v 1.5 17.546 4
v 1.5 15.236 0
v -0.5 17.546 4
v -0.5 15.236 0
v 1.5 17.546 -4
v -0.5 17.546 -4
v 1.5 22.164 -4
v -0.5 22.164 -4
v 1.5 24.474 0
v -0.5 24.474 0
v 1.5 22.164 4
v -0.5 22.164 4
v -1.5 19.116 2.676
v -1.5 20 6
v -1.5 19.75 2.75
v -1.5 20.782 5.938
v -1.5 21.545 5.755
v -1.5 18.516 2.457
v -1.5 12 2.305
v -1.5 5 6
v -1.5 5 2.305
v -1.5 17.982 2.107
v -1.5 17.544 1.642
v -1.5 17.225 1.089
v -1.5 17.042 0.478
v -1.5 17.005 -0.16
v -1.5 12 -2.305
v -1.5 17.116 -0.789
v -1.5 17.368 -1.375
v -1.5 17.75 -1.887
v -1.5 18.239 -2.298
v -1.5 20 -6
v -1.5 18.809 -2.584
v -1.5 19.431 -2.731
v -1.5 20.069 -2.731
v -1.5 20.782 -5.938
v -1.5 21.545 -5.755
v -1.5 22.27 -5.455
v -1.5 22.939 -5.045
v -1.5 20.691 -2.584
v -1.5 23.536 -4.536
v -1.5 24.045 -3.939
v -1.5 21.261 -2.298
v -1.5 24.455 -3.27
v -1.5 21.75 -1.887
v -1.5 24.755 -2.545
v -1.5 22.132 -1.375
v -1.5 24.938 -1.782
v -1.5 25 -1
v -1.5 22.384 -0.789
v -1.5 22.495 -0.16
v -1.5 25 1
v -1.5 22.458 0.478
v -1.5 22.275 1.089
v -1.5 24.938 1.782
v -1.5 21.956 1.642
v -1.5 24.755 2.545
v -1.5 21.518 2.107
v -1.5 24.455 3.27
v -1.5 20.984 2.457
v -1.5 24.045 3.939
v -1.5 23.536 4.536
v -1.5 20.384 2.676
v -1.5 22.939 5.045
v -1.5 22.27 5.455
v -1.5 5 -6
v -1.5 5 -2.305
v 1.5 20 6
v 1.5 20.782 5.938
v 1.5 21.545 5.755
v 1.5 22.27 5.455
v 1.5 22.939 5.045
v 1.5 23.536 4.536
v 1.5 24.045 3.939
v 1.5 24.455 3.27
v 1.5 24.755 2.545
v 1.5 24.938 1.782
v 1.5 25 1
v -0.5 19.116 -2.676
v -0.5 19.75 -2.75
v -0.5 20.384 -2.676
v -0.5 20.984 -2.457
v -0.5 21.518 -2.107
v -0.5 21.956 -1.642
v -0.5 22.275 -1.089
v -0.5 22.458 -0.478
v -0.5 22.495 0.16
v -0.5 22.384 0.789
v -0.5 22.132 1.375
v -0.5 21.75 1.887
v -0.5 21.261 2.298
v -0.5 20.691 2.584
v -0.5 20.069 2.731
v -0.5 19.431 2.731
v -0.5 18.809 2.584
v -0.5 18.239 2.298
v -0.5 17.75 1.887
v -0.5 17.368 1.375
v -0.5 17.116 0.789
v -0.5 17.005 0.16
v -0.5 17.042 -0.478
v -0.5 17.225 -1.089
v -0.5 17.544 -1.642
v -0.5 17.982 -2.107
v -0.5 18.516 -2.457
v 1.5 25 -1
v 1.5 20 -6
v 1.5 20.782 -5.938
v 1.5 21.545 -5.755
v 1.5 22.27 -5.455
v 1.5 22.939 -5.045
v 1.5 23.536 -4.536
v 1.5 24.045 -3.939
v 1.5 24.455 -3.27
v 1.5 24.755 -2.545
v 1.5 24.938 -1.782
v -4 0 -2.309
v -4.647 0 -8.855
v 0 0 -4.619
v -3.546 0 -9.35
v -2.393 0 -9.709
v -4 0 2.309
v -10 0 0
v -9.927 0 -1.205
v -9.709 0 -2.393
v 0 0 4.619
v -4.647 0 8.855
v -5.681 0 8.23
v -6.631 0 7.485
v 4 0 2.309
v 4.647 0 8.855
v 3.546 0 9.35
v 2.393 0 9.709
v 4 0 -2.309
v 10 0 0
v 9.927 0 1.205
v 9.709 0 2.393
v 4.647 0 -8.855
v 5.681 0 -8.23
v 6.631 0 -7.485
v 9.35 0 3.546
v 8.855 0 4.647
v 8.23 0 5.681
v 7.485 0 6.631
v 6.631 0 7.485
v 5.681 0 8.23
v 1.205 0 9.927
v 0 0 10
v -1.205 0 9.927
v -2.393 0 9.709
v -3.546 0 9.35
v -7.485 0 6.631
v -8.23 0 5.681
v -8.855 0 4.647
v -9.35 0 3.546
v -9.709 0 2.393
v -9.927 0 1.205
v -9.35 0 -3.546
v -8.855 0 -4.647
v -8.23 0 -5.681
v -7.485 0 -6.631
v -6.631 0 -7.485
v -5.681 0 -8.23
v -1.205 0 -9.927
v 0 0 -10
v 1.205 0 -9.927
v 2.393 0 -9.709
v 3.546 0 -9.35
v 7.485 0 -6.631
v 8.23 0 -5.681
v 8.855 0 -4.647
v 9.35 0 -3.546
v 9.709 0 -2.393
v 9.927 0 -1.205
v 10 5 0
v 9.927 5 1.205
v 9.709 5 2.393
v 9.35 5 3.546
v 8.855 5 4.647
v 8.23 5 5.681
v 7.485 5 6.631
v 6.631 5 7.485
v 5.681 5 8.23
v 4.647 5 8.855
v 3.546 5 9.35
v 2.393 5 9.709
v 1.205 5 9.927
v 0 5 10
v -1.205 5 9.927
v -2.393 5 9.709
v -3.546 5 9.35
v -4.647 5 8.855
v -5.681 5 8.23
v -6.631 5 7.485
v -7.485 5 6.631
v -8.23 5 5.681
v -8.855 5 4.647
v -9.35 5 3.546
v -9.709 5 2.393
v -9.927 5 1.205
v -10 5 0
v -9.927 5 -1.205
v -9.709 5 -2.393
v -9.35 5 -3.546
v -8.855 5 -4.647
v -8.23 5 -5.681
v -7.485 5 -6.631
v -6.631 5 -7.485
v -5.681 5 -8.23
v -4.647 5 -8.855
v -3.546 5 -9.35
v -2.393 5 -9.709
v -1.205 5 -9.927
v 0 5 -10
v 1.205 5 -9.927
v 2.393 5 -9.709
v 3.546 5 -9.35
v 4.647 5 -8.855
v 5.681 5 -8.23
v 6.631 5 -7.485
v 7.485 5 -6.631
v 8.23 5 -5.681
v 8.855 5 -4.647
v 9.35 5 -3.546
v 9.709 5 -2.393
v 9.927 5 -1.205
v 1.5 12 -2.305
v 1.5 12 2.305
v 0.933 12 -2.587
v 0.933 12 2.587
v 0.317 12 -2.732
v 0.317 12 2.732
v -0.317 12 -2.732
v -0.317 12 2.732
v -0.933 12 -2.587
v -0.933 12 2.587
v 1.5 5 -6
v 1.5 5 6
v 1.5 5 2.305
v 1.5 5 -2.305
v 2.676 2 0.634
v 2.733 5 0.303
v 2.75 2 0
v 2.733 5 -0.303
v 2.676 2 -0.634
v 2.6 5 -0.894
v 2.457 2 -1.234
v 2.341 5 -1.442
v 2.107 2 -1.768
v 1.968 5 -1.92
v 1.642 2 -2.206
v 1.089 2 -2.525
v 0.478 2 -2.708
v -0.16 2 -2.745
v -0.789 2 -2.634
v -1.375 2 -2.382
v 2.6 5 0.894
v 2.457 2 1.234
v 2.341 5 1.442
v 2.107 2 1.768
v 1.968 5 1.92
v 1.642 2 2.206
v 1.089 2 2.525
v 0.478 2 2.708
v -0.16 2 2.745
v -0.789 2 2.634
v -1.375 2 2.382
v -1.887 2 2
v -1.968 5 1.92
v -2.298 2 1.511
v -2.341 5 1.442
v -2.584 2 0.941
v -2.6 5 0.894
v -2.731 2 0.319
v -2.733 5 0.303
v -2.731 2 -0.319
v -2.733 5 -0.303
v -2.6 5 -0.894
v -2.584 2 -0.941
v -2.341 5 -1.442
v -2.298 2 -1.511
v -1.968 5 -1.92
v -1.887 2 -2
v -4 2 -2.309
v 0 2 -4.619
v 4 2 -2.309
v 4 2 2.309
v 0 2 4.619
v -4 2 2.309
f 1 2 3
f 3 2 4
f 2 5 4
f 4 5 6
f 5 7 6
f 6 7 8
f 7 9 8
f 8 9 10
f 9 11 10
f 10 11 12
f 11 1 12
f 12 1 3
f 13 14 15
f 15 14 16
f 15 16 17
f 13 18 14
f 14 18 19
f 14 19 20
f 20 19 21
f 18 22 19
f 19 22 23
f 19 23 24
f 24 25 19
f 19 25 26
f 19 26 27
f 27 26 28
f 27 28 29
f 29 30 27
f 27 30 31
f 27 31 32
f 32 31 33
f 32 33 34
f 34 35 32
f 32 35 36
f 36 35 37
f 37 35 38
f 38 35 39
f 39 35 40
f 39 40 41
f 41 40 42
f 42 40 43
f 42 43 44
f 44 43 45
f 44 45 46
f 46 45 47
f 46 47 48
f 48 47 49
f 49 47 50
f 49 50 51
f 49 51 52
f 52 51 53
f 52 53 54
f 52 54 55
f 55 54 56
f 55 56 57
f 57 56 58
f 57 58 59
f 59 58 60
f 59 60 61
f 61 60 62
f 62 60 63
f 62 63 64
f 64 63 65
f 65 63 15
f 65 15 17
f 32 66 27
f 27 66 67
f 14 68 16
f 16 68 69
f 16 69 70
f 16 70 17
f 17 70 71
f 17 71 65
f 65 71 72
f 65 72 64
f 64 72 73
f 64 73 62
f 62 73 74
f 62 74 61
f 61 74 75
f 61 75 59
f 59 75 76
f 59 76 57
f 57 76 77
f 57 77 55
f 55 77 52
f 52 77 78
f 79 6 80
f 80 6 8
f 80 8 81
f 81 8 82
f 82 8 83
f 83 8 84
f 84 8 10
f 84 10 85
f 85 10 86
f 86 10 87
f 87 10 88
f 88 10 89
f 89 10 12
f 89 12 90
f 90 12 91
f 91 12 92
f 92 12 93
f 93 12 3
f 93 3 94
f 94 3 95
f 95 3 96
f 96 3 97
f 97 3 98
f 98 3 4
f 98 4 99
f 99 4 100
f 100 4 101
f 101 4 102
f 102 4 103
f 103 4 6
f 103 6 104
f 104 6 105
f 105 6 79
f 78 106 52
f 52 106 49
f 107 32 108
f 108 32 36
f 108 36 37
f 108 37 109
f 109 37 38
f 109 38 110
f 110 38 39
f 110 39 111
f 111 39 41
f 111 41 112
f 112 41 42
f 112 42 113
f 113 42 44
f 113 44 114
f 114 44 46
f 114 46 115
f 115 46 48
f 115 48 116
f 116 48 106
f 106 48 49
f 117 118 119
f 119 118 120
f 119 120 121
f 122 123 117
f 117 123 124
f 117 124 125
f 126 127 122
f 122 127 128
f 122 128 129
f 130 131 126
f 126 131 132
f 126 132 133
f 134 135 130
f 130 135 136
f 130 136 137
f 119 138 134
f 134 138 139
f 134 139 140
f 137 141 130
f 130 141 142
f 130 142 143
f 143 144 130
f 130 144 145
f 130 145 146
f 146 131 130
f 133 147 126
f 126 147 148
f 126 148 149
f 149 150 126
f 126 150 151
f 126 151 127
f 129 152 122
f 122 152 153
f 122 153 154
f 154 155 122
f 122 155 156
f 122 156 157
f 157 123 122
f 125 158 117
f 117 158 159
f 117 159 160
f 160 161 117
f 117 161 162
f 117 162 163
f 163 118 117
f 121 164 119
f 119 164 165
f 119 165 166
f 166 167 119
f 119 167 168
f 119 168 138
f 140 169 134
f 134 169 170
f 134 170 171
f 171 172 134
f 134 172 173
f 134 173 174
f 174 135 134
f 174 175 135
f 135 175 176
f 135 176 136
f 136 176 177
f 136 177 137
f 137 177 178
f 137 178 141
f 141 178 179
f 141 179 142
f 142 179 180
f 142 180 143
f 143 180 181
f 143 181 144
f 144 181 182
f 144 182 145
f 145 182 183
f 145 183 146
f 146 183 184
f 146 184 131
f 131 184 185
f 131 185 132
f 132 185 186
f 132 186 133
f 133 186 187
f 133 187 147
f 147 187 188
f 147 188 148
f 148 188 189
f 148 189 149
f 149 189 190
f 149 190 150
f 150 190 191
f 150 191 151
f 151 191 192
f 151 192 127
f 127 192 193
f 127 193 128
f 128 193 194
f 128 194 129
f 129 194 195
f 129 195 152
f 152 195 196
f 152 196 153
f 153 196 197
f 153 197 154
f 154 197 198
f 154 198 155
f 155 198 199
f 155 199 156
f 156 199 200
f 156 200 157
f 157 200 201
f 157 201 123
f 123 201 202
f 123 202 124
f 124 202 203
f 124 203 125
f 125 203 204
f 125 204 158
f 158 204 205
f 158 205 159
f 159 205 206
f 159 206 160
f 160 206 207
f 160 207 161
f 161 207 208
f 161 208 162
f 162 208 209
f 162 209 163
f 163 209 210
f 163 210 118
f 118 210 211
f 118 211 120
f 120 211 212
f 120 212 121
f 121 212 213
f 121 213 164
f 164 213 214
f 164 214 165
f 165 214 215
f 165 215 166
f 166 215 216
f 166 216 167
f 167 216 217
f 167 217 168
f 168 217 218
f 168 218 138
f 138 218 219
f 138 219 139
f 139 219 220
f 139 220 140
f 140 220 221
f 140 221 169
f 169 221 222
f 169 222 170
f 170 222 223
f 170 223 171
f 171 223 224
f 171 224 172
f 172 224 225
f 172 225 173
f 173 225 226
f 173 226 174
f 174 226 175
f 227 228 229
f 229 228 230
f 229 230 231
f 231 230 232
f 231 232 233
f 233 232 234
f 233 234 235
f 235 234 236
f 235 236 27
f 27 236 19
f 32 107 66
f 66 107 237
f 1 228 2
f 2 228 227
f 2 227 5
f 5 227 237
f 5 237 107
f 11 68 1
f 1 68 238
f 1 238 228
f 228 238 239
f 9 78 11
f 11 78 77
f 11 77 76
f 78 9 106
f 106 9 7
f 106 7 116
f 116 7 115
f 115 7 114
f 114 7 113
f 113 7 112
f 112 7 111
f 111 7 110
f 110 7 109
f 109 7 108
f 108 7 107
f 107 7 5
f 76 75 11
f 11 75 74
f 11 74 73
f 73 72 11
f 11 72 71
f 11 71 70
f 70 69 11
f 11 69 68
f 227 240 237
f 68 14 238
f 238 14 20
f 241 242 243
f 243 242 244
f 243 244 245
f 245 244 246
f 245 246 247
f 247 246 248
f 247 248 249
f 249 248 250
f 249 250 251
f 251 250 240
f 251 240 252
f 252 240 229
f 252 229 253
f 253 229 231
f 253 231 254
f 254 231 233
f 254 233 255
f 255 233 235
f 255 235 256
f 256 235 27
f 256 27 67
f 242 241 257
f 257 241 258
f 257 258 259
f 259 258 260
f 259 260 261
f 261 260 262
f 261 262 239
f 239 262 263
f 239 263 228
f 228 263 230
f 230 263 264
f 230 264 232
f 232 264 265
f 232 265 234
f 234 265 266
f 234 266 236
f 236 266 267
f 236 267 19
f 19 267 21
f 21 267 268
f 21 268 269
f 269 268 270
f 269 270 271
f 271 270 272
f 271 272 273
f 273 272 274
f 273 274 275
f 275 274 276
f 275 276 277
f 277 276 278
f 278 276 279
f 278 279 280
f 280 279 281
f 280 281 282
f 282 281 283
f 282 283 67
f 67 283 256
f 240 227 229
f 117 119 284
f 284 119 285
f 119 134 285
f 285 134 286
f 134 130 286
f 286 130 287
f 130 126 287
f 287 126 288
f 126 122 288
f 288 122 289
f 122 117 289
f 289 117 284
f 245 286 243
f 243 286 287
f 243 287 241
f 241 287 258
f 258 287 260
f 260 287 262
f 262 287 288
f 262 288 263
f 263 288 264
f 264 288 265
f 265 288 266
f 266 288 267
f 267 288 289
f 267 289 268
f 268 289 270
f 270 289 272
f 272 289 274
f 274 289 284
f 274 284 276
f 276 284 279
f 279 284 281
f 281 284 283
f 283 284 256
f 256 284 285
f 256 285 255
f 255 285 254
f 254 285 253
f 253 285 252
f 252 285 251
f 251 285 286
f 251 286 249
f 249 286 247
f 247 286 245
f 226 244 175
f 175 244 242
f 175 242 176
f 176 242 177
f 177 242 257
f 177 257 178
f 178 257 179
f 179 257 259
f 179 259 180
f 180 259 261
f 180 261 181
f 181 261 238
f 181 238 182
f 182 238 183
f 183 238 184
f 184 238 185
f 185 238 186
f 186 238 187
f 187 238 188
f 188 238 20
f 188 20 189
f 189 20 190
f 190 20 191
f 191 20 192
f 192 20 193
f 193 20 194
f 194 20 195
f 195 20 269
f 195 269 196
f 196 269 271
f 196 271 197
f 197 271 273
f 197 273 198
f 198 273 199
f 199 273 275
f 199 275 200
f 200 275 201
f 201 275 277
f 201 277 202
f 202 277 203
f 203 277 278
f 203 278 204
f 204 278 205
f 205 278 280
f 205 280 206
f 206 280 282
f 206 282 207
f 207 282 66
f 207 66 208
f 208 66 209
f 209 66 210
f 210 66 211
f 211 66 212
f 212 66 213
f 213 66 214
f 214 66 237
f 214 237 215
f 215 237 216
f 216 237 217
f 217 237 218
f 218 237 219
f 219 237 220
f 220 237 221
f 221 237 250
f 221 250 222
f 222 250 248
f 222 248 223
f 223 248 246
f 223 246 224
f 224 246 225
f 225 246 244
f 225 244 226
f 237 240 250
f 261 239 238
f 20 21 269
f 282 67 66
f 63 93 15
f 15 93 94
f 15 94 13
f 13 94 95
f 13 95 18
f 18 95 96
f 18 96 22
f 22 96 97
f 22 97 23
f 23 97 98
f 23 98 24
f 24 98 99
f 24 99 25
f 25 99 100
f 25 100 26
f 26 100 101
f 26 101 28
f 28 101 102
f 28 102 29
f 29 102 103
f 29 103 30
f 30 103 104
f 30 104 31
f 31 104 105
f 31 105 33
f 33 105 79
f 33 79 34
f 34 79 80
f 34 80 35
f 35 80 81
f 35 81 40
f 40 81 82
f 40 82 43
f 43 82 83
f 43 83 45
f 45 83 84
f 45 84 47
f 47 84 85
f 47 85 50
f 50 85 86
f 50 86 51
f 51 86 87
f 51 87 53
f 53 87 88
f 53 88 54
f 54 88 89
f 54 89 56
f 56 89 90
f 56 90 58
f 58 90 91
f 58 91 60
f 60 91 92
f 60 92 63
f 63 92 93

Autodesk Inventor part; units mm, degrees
ref_plane "YZ Plane" through (0, 0, 0) normal (1, 0, 0) x (0, 1, 0)
ref_plane "XZ Plane" through (0, 0, 0) normal (0, 1, 0) x (-1, 0, 0)
ref_plane "XY Plane" through (0, 0, 0) normal (0, 0, 1) x (1, 0, 0)
sketch "Sketch1" plane through (0, 0, 0) normal (0, 1, 0) x (-1, 0, 0)
  line L0 (-10, 10) -> (10, 10)
  line L1 (10, 10) -> (10, -10)
  line L2 (10, -10) -> (-10, -10)
  line L3 (-10, -10) -> (-10, 10)
  line L4 (-10, 10) -> (10, -10) construction
  line L5 (10, 10) -> (-10, -10) construction
  point P0 (0, 0)
  dimension "d0" = 20
  dimension "d1" = 20
extrude "Extrusion1" add sketch "Sketch1" along normal blind 5
sketch "Sketch3" plane through (0, 0, 0) normal (0, -1, 0) x (1, 0, 0)
  line L0 (0, 4.6188) -> (4, 2.3094)
  line L1 (4, 2.3094) -> (4, -2.3094)
  line L2 (4, -2.3094) -> (0, -4.6188)
  line L3 (0, -4.6188) -> (-4, -2.3094)
  line L4 (-4, -2.3094) -> (-4, 2.3094)
  line L5 (-4, 2.3094) -> (0, 4.6188)
  line L6 (10, 10) -> (10, -10) projected
  point P0 (0, 0)
  point P1 (0, 0)
  point P2 (-4, 0)
  dimension "d7" = 8
extrude "Extrusion3" cut sketch "Sketch3" against normal blind 2
sketch "Sketch2" plane through (0, 0, 0) normal (0, -1, 0) x (1, 0, 0)
  circle A0 centre (0, 0) radius 2.75
  dimension "d4" = 5.5
extrude "Extrusion2" cut sketch "Sketch2" against normal blind 22.5
sketch "Sketch4" plane through (0, 5, 0) normal (0, 1, 0) x (1, 0, 0)
  line L0 (1.5, 6) -> (-1.5, 6)
  line L1 (-1.5, 6) -> (-1.5, -6)
  line L2 (-1.5, -6) -> (1.5, -6)
  line L3 (1.5, -6) -> (1.5, 6)
  circle A0 centre (0, 0) radius 2.75 projected
  line L4 (1.5, 6) -> (-1.5, -6) construction
  line L5 (-1.5, 6) -> (1.5, -6) construction
  dimension "d10" = 6
  dimension "d11" = 3
extrude "Extrusion4" add sketch "Sketch4" along normal blind 20 contours L3 A0 L1 L0 | L3 A0 L1 | L3 L2 L1 A0
sketch "Sketch5" plane through (0, 2, 0) normal (0, -1, 0) x (1, 0, 0)
  circle A0 centre (0, 0) radius 2.75
  dimension "d14" = 5.5
extrude "Extrusion5" cut sketch "Sketch5" against normal blind 10
fillet "Fillet1" radius 10 4 edges at (-10, 2.5, -10) (-10, 2.5, 10) (10, 2.5, -10) (10, 2.5, 10)
fillet "Fillet2" radius 5 2 edges at (0, 25, -6) (0, 25, 6)
sketch "Sketch6" plane through (1.5, 5, 6) normal (1, 0, 0) x (0, 0, -1)
  line L0 (6, 19.4737) -> (10, 17.1643)
  line L1 (10, 17.1643) -> (10, 12.5455)
  line L2 (10, 12.5455) -> (6, 10.2361)
  line L3 (6, 10.2361) -> (2, 12.5455)
  line L4 (2, 12.5455) -> (2, 17.1643)
  line L5 (2, 17.1643) -> (6, 19.4737)
  line L6 (12, 0) -> (12, 15) projected
  point P0 (6, -5)
  point P1 (6, 14.8549)
  dimension "d21" = 8
extrude "Extrusion6" cut sketch "Sketch6" against normal blind 2
sketch "Sketch7" plane through (-0.5, 5, 6) normal (1, 0, 0) x (0, 0, -1)
  circle A0 centre (6, 14.75) radius 2.75
  line L0 (12, 0) -> (12, 15) projected
  line L1 (5, 20) -> (7, 20) projected
  point P0 (6, -5)
  point P1 (6, 20)
  dimension "d24" = 5.5
  dimension "d25" = 6
  dimension "d26" = 5.25
extrude "Extrusion7" cut sketch "Sketch7" against normal blind 40.5
properties part number "J2"
